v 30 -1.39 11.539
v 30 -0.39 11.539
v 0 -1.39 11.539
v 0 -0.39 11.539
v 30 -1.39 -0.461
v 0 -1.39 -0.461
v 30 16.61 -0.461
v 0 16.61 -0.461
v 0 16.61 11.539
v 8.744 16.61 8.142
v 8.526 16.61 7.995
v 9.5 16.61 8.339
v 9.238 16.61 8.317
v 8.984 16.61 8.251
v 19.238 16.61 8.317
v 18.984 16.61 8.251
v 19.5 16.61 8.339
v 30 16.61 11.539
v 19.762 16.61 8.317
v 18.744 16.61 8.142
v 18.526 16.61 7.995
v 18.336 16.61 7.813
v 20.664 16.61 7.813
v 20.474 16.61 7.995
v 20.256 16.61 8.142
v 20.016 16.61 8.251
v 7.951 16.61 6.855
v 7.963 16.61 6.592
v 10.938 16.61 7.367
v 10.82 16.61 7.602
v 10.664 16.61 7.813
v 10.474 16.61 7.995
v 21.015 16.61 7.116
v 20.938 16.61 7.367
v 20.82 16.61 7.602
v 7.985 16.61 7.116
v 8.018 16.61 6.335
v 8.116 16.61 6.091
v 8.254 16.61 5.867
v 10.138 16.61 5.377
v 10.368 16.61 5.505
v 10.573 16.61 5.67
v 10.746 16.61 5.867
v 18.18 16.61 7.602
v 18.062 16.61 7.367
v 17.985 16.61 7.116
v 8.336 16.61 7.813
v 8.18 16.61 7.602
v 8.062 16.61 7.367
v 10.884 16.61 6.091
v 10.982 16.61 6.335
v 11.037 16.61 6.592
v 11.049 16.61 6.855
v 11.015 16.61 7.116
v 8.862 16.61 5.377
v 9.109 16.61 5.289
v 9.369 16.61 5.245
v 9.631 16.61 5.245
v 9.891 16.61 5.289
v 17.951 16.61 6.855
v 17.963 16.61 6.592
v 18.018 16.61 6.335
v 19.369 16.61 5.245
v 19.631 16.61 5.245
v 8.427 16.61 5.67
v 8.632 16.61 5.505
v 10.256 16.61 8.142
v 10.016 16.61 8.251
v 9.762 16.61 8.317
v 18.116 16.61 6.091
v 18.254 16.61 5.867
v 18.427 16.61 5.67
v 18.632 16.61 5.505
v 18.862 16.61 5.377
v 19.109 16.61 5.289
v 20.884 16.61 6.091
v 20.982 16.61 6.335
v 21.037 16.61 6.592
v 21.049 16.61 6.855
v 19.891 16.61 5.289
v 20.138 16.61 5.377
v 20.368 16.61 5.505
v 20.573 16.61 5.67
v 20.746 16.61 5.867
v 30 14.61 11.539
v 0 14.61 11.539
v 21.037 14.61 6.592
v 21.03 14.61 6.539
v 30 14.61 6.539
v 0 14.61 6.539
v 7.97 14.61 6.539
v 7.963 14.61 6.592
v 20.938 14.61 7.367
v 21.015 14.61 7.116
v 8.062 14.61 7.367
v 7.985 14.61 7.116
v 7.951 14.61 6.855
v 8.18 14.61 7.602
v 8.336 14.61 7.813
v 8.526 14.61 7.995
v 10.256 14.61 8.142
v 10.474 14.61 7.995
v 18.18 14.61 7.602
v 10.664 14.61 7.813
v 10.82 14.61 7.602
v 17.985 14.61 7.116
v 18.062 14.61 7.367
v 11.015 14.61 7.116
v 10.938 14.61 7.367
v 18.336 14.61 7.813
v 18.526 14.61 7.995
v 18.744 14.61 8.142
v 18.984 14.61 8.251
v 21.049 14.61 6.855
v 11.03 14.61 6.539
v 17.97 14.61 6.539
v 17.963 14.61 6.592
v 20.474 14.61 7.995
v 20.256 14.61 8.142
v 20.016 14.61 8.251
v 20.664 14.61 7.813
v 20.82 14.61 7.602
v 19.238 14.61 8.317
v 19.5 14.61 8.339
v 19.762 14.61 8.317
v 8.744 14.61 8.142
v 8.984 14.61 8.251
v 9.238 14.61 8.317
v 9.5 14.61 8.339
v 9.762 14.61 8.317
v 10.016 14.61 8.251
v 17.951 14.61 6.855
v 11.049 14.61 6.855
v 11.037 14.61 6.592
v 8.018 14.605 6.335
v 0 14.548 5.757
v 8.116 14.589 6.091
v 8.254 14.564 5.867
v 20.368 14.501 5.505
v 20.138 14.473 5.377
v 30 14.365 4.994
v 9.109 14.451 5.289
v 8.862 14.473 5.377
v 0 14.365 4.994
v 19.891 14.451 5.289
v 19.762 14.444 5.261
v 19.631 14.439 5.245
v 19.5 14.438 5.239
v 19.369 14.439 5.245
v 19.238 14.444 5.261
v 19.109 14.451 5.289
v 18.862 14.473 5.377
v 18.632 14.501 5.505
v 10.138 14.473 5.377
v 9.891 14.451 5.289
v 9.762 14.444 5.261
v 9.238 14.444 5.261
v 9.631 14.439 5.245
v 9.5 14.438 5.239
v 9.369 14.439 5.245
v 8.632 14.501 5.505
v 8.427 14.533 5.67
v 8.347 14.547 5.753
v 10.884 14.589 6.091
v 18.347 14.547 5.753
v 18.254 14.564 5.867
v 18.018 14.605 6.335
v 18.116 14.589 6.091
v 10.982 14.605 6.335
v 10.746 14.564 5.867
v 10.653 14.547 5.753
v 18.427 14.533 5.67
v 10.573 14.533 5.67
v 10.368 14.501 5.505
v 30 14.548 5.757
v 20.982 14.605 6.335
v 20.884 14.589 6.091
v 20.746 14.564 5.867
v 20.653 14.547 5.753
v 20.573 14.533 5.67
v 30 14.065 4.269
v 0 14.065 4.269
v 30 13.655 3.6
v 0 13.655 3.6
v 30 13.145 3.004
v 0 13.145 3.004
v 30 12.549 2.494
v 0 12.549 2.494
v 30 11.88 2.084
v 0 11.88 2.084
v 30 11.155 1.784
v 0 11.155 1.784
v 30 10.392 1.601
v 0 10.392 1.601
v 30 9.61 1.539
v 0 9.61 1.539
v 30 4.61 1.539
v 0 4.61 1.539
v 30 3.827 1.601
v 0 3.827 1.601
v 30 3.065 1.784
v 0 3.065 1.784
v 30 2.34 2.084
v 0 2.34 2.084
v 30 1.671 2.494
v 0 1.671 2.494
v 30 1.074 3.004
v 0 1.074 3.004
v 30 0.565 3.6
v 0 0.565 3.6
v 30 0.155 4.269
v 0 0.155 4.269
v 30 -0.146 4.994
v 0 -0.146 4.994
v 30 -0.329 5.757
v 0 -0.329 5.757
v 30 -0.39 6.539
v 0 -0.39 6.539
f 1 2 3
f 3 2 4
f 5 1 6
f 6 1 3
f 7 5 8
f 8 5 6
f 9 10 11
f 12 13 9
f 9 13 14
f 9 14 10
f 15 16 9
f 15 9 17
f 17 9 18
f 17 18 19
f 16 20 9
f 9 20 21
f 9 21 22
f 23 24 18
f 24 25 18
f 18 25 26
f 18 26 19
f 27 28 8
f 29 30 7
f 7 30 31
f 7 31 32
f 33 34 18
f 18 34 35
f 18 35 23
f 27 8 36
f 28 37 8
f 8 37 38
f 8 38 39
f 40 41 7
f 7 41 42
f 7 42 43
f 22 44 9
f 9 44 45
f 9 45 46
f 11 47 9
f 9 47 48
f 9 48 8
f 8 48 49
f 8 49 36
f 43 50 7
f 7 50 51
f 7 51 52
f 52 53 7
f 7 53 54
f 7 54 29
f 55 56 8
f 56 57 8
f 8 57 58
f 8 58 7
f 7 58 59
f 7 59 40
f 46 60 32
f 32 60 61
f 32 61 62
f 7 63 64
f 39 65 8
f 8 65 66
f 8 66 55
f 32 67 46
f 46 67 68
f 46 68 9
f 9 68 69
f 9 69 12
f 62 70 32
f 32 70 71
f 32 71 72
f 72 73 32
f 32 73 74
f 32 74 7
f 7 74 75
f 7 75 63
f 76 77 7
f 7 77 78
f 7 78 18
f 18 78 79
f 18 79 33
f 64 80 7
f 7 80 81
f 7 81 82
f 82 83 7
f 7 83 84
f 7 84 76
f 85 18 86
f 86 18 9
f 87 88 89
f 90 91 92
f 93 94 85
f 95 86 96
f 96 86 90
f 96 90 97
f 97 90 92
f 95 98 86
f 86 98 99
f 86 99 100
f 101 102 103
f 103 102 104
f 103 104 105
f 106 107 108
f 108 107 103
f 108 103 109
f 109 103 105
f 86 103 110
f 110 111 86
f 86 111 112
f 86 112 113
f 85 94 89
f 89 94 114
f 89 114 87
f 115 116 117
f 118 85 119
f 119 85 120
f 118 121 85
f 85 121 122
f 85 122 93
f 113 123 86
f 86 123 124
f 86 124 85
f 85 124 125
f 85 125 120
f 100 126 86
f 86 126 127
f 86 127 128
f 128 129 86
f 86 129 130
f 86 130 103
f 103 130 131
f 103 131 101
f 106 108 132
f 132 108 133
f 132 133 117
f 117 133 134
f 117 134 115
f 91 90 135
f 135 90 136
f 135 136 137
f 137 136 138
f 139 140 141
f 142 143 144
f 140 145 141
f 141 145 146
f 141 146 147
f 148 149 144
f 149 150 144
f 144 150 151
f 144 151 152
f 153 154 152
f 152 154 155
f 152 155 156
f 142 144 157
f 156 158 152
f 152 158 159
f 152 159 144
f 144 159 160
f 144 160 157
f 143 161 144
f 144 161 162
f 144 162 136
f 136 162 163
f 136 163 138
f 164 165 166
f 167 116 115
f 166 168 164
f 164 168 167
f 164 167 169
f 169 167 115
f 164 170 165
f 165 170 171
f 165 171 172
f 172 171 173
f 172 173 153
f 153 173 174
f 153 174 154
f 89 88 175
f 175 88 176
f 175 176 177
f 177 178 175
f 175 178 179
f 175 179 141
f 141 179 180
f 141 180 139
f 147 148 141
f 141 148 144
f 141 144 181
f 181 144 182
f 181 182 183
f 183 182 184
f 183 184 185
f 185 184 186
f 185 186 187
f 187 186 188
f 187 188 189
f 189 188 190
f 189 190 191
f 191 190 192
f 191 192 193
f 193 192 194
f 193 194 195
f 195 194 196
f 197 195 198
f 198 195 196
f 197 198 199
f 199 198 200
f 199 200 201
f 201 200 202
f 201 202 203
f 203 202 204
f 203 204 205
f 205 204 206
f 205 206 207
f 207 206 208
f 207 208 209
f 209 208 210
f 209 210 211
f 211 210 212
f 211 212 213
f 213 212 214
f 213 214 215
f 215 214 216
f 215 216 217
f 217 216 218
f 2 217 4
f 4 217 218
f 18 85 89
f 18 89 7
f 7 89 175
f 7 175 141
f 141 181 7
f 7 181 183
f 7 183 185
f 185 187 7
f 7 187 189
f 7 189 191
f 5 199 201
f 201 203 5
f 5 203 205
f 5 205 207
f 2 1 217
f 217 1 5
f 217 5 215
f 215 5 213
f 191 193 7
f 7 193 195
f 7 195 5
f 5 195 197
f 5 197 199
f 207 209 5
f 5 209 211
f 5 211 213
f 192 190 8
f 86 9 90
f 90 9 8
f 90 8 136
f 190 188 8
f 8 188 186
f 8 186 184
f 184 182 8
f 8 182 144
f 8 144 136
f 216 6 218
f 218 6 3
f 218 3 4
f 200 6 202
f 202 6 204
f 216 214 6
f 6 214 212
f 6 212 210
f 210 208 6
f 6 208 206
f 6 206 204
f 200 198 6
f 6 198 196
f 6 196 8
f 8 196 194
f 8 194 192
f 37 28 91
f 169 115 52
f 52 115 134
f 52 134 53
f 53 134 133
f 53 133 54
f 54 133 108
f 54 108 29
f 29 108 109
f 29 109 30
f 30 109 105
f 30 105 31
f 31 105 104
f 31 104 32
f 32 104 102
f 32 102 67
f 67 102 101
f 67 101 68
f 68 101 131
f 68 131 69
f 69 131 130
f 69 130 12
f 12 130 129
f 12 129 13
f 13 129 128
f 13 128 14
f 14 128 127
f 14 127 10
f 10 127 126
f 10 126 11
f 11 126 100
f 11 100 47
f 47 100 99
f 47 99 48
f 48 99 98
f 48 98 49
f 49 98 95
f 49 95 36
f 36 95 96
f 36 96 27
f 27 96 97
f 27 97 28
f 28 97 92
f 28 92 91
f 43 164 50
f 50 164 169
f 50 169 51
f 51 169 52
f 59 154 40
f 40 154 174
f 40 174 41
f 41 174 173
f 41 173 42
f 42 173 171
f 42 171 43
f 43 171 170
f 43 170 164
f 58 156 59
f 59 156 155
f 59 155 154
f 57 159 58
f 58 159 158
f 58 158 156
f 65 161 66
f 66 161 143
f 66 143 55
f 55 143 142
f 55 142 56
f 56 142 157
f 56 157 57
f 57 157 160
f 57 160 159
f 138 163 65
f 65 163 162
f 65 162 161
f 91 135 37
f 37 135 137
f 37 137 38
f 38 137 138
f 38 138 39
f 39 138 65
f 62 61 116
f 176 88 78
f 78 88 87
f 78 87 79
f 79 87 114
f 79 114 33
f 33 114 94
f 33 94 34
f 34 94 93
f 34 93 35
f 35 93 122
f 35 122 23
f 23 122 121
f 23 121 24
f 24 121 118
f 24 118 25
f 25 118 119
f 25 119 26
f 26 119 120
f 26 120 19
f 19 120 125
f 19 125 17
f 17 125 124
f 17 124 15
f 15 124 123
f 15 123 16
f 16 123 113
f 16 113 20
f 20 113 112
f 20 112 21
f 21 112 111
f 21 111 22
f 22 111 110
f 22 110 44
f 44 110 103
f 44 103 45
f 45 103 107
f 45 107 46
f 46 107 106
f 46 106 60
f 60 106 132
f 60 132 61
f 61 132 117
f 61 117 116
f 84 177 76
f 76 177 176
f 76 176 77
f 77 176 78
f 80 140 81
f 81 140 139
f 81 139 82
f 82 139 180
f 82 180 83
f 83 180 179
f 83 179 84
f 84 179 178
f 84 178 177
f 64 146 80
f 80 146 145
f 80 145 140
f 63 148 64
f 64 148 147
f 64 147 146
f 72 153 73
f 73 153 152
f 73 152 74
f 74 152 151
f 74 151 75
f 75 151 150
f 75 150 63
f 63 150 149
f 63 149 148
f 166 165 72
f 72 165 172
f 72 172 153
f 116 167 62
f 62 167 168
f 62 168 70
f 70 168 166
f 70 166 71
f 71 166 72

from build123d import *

# Parameters (mm, degrees)
BOSS_EXTRUDE1_DEPTH = 30
SKETCH2_R           = 1.55
CUT_EXTRUDE1_DEPTH  = 5


with BuildPart() as part:
    # Sketch1 → Boss-Extrude1 (new body)
    with BuildSketch(Plane(origin=(0, 0, 0), x_dir=(0, 0, -1), z_dir=(1, 0, 0))):
        with BuildLine():
            Line((-6.539148929, 14.609586507), (-11.539148929, 14.609586507))
            Line((-11.539148929, 14.609586507), (-11.539148929, 16.609586507))
            Line((-11.539148929, 16.609586507), (0.460851071, 16.609586507))
            Line((0.460851071, 16.609586507), (0.460851071, -1.390413493))
            Line((0.460851071, -1.390413493), (-11.539148929, -1.390413493))
            Line((-11.539148929, -1.390413493), (-11.539148929, -0.390413493))
            Line((-11.539148929, -0.390413493), (-8.539148929, -0.390413493))
            Line((-8.539148929, -0.390413493), (-6.539148929, -0.390413493))
            ThreePointArc((-6.539148929, -0.390413493), (-3.003615023, 1.074052601), (-1.539148929, 4.609586507))
            Line((-1.539148929, 4.609586507), (-1.539148929, 9.609586507))
            ThreePointArc((-1.539148929, 9.609586507), (-3.003615023, 13.145120413), (-6.539148929, 14.609586507))
        make_face()
    extrude(amount=BOSS_EXTRUDE1_DEPTH)

    # Sketch2 → Cut-Extrude1 (cut)
    with BuildSketch(Plane(origin=(0, 16.609586507, 0), x_dir=(1, 0, 0), z_dir=(0, 1, 0))):
        with Locations((-10.5, -6.789148929)):
            Circle(SKETCH2_R)
        with Locations((-20.5, -6.789148929)):
            Circle(SKETCH2_R)
        with Locations(Location((9.5, -6.789148929, 0), (0, 0, 270))):
            Circle(SKETCH2_R)
        with Locations(Location((19.5, -6.789148929, 0), (0, 0, 270))):
            Circle(SKETCH2_R)
    extrude(amount=-CUT_EXTRUDE1_DEPTH, mode=Mode.SUBTRACT)


solid = part.part
